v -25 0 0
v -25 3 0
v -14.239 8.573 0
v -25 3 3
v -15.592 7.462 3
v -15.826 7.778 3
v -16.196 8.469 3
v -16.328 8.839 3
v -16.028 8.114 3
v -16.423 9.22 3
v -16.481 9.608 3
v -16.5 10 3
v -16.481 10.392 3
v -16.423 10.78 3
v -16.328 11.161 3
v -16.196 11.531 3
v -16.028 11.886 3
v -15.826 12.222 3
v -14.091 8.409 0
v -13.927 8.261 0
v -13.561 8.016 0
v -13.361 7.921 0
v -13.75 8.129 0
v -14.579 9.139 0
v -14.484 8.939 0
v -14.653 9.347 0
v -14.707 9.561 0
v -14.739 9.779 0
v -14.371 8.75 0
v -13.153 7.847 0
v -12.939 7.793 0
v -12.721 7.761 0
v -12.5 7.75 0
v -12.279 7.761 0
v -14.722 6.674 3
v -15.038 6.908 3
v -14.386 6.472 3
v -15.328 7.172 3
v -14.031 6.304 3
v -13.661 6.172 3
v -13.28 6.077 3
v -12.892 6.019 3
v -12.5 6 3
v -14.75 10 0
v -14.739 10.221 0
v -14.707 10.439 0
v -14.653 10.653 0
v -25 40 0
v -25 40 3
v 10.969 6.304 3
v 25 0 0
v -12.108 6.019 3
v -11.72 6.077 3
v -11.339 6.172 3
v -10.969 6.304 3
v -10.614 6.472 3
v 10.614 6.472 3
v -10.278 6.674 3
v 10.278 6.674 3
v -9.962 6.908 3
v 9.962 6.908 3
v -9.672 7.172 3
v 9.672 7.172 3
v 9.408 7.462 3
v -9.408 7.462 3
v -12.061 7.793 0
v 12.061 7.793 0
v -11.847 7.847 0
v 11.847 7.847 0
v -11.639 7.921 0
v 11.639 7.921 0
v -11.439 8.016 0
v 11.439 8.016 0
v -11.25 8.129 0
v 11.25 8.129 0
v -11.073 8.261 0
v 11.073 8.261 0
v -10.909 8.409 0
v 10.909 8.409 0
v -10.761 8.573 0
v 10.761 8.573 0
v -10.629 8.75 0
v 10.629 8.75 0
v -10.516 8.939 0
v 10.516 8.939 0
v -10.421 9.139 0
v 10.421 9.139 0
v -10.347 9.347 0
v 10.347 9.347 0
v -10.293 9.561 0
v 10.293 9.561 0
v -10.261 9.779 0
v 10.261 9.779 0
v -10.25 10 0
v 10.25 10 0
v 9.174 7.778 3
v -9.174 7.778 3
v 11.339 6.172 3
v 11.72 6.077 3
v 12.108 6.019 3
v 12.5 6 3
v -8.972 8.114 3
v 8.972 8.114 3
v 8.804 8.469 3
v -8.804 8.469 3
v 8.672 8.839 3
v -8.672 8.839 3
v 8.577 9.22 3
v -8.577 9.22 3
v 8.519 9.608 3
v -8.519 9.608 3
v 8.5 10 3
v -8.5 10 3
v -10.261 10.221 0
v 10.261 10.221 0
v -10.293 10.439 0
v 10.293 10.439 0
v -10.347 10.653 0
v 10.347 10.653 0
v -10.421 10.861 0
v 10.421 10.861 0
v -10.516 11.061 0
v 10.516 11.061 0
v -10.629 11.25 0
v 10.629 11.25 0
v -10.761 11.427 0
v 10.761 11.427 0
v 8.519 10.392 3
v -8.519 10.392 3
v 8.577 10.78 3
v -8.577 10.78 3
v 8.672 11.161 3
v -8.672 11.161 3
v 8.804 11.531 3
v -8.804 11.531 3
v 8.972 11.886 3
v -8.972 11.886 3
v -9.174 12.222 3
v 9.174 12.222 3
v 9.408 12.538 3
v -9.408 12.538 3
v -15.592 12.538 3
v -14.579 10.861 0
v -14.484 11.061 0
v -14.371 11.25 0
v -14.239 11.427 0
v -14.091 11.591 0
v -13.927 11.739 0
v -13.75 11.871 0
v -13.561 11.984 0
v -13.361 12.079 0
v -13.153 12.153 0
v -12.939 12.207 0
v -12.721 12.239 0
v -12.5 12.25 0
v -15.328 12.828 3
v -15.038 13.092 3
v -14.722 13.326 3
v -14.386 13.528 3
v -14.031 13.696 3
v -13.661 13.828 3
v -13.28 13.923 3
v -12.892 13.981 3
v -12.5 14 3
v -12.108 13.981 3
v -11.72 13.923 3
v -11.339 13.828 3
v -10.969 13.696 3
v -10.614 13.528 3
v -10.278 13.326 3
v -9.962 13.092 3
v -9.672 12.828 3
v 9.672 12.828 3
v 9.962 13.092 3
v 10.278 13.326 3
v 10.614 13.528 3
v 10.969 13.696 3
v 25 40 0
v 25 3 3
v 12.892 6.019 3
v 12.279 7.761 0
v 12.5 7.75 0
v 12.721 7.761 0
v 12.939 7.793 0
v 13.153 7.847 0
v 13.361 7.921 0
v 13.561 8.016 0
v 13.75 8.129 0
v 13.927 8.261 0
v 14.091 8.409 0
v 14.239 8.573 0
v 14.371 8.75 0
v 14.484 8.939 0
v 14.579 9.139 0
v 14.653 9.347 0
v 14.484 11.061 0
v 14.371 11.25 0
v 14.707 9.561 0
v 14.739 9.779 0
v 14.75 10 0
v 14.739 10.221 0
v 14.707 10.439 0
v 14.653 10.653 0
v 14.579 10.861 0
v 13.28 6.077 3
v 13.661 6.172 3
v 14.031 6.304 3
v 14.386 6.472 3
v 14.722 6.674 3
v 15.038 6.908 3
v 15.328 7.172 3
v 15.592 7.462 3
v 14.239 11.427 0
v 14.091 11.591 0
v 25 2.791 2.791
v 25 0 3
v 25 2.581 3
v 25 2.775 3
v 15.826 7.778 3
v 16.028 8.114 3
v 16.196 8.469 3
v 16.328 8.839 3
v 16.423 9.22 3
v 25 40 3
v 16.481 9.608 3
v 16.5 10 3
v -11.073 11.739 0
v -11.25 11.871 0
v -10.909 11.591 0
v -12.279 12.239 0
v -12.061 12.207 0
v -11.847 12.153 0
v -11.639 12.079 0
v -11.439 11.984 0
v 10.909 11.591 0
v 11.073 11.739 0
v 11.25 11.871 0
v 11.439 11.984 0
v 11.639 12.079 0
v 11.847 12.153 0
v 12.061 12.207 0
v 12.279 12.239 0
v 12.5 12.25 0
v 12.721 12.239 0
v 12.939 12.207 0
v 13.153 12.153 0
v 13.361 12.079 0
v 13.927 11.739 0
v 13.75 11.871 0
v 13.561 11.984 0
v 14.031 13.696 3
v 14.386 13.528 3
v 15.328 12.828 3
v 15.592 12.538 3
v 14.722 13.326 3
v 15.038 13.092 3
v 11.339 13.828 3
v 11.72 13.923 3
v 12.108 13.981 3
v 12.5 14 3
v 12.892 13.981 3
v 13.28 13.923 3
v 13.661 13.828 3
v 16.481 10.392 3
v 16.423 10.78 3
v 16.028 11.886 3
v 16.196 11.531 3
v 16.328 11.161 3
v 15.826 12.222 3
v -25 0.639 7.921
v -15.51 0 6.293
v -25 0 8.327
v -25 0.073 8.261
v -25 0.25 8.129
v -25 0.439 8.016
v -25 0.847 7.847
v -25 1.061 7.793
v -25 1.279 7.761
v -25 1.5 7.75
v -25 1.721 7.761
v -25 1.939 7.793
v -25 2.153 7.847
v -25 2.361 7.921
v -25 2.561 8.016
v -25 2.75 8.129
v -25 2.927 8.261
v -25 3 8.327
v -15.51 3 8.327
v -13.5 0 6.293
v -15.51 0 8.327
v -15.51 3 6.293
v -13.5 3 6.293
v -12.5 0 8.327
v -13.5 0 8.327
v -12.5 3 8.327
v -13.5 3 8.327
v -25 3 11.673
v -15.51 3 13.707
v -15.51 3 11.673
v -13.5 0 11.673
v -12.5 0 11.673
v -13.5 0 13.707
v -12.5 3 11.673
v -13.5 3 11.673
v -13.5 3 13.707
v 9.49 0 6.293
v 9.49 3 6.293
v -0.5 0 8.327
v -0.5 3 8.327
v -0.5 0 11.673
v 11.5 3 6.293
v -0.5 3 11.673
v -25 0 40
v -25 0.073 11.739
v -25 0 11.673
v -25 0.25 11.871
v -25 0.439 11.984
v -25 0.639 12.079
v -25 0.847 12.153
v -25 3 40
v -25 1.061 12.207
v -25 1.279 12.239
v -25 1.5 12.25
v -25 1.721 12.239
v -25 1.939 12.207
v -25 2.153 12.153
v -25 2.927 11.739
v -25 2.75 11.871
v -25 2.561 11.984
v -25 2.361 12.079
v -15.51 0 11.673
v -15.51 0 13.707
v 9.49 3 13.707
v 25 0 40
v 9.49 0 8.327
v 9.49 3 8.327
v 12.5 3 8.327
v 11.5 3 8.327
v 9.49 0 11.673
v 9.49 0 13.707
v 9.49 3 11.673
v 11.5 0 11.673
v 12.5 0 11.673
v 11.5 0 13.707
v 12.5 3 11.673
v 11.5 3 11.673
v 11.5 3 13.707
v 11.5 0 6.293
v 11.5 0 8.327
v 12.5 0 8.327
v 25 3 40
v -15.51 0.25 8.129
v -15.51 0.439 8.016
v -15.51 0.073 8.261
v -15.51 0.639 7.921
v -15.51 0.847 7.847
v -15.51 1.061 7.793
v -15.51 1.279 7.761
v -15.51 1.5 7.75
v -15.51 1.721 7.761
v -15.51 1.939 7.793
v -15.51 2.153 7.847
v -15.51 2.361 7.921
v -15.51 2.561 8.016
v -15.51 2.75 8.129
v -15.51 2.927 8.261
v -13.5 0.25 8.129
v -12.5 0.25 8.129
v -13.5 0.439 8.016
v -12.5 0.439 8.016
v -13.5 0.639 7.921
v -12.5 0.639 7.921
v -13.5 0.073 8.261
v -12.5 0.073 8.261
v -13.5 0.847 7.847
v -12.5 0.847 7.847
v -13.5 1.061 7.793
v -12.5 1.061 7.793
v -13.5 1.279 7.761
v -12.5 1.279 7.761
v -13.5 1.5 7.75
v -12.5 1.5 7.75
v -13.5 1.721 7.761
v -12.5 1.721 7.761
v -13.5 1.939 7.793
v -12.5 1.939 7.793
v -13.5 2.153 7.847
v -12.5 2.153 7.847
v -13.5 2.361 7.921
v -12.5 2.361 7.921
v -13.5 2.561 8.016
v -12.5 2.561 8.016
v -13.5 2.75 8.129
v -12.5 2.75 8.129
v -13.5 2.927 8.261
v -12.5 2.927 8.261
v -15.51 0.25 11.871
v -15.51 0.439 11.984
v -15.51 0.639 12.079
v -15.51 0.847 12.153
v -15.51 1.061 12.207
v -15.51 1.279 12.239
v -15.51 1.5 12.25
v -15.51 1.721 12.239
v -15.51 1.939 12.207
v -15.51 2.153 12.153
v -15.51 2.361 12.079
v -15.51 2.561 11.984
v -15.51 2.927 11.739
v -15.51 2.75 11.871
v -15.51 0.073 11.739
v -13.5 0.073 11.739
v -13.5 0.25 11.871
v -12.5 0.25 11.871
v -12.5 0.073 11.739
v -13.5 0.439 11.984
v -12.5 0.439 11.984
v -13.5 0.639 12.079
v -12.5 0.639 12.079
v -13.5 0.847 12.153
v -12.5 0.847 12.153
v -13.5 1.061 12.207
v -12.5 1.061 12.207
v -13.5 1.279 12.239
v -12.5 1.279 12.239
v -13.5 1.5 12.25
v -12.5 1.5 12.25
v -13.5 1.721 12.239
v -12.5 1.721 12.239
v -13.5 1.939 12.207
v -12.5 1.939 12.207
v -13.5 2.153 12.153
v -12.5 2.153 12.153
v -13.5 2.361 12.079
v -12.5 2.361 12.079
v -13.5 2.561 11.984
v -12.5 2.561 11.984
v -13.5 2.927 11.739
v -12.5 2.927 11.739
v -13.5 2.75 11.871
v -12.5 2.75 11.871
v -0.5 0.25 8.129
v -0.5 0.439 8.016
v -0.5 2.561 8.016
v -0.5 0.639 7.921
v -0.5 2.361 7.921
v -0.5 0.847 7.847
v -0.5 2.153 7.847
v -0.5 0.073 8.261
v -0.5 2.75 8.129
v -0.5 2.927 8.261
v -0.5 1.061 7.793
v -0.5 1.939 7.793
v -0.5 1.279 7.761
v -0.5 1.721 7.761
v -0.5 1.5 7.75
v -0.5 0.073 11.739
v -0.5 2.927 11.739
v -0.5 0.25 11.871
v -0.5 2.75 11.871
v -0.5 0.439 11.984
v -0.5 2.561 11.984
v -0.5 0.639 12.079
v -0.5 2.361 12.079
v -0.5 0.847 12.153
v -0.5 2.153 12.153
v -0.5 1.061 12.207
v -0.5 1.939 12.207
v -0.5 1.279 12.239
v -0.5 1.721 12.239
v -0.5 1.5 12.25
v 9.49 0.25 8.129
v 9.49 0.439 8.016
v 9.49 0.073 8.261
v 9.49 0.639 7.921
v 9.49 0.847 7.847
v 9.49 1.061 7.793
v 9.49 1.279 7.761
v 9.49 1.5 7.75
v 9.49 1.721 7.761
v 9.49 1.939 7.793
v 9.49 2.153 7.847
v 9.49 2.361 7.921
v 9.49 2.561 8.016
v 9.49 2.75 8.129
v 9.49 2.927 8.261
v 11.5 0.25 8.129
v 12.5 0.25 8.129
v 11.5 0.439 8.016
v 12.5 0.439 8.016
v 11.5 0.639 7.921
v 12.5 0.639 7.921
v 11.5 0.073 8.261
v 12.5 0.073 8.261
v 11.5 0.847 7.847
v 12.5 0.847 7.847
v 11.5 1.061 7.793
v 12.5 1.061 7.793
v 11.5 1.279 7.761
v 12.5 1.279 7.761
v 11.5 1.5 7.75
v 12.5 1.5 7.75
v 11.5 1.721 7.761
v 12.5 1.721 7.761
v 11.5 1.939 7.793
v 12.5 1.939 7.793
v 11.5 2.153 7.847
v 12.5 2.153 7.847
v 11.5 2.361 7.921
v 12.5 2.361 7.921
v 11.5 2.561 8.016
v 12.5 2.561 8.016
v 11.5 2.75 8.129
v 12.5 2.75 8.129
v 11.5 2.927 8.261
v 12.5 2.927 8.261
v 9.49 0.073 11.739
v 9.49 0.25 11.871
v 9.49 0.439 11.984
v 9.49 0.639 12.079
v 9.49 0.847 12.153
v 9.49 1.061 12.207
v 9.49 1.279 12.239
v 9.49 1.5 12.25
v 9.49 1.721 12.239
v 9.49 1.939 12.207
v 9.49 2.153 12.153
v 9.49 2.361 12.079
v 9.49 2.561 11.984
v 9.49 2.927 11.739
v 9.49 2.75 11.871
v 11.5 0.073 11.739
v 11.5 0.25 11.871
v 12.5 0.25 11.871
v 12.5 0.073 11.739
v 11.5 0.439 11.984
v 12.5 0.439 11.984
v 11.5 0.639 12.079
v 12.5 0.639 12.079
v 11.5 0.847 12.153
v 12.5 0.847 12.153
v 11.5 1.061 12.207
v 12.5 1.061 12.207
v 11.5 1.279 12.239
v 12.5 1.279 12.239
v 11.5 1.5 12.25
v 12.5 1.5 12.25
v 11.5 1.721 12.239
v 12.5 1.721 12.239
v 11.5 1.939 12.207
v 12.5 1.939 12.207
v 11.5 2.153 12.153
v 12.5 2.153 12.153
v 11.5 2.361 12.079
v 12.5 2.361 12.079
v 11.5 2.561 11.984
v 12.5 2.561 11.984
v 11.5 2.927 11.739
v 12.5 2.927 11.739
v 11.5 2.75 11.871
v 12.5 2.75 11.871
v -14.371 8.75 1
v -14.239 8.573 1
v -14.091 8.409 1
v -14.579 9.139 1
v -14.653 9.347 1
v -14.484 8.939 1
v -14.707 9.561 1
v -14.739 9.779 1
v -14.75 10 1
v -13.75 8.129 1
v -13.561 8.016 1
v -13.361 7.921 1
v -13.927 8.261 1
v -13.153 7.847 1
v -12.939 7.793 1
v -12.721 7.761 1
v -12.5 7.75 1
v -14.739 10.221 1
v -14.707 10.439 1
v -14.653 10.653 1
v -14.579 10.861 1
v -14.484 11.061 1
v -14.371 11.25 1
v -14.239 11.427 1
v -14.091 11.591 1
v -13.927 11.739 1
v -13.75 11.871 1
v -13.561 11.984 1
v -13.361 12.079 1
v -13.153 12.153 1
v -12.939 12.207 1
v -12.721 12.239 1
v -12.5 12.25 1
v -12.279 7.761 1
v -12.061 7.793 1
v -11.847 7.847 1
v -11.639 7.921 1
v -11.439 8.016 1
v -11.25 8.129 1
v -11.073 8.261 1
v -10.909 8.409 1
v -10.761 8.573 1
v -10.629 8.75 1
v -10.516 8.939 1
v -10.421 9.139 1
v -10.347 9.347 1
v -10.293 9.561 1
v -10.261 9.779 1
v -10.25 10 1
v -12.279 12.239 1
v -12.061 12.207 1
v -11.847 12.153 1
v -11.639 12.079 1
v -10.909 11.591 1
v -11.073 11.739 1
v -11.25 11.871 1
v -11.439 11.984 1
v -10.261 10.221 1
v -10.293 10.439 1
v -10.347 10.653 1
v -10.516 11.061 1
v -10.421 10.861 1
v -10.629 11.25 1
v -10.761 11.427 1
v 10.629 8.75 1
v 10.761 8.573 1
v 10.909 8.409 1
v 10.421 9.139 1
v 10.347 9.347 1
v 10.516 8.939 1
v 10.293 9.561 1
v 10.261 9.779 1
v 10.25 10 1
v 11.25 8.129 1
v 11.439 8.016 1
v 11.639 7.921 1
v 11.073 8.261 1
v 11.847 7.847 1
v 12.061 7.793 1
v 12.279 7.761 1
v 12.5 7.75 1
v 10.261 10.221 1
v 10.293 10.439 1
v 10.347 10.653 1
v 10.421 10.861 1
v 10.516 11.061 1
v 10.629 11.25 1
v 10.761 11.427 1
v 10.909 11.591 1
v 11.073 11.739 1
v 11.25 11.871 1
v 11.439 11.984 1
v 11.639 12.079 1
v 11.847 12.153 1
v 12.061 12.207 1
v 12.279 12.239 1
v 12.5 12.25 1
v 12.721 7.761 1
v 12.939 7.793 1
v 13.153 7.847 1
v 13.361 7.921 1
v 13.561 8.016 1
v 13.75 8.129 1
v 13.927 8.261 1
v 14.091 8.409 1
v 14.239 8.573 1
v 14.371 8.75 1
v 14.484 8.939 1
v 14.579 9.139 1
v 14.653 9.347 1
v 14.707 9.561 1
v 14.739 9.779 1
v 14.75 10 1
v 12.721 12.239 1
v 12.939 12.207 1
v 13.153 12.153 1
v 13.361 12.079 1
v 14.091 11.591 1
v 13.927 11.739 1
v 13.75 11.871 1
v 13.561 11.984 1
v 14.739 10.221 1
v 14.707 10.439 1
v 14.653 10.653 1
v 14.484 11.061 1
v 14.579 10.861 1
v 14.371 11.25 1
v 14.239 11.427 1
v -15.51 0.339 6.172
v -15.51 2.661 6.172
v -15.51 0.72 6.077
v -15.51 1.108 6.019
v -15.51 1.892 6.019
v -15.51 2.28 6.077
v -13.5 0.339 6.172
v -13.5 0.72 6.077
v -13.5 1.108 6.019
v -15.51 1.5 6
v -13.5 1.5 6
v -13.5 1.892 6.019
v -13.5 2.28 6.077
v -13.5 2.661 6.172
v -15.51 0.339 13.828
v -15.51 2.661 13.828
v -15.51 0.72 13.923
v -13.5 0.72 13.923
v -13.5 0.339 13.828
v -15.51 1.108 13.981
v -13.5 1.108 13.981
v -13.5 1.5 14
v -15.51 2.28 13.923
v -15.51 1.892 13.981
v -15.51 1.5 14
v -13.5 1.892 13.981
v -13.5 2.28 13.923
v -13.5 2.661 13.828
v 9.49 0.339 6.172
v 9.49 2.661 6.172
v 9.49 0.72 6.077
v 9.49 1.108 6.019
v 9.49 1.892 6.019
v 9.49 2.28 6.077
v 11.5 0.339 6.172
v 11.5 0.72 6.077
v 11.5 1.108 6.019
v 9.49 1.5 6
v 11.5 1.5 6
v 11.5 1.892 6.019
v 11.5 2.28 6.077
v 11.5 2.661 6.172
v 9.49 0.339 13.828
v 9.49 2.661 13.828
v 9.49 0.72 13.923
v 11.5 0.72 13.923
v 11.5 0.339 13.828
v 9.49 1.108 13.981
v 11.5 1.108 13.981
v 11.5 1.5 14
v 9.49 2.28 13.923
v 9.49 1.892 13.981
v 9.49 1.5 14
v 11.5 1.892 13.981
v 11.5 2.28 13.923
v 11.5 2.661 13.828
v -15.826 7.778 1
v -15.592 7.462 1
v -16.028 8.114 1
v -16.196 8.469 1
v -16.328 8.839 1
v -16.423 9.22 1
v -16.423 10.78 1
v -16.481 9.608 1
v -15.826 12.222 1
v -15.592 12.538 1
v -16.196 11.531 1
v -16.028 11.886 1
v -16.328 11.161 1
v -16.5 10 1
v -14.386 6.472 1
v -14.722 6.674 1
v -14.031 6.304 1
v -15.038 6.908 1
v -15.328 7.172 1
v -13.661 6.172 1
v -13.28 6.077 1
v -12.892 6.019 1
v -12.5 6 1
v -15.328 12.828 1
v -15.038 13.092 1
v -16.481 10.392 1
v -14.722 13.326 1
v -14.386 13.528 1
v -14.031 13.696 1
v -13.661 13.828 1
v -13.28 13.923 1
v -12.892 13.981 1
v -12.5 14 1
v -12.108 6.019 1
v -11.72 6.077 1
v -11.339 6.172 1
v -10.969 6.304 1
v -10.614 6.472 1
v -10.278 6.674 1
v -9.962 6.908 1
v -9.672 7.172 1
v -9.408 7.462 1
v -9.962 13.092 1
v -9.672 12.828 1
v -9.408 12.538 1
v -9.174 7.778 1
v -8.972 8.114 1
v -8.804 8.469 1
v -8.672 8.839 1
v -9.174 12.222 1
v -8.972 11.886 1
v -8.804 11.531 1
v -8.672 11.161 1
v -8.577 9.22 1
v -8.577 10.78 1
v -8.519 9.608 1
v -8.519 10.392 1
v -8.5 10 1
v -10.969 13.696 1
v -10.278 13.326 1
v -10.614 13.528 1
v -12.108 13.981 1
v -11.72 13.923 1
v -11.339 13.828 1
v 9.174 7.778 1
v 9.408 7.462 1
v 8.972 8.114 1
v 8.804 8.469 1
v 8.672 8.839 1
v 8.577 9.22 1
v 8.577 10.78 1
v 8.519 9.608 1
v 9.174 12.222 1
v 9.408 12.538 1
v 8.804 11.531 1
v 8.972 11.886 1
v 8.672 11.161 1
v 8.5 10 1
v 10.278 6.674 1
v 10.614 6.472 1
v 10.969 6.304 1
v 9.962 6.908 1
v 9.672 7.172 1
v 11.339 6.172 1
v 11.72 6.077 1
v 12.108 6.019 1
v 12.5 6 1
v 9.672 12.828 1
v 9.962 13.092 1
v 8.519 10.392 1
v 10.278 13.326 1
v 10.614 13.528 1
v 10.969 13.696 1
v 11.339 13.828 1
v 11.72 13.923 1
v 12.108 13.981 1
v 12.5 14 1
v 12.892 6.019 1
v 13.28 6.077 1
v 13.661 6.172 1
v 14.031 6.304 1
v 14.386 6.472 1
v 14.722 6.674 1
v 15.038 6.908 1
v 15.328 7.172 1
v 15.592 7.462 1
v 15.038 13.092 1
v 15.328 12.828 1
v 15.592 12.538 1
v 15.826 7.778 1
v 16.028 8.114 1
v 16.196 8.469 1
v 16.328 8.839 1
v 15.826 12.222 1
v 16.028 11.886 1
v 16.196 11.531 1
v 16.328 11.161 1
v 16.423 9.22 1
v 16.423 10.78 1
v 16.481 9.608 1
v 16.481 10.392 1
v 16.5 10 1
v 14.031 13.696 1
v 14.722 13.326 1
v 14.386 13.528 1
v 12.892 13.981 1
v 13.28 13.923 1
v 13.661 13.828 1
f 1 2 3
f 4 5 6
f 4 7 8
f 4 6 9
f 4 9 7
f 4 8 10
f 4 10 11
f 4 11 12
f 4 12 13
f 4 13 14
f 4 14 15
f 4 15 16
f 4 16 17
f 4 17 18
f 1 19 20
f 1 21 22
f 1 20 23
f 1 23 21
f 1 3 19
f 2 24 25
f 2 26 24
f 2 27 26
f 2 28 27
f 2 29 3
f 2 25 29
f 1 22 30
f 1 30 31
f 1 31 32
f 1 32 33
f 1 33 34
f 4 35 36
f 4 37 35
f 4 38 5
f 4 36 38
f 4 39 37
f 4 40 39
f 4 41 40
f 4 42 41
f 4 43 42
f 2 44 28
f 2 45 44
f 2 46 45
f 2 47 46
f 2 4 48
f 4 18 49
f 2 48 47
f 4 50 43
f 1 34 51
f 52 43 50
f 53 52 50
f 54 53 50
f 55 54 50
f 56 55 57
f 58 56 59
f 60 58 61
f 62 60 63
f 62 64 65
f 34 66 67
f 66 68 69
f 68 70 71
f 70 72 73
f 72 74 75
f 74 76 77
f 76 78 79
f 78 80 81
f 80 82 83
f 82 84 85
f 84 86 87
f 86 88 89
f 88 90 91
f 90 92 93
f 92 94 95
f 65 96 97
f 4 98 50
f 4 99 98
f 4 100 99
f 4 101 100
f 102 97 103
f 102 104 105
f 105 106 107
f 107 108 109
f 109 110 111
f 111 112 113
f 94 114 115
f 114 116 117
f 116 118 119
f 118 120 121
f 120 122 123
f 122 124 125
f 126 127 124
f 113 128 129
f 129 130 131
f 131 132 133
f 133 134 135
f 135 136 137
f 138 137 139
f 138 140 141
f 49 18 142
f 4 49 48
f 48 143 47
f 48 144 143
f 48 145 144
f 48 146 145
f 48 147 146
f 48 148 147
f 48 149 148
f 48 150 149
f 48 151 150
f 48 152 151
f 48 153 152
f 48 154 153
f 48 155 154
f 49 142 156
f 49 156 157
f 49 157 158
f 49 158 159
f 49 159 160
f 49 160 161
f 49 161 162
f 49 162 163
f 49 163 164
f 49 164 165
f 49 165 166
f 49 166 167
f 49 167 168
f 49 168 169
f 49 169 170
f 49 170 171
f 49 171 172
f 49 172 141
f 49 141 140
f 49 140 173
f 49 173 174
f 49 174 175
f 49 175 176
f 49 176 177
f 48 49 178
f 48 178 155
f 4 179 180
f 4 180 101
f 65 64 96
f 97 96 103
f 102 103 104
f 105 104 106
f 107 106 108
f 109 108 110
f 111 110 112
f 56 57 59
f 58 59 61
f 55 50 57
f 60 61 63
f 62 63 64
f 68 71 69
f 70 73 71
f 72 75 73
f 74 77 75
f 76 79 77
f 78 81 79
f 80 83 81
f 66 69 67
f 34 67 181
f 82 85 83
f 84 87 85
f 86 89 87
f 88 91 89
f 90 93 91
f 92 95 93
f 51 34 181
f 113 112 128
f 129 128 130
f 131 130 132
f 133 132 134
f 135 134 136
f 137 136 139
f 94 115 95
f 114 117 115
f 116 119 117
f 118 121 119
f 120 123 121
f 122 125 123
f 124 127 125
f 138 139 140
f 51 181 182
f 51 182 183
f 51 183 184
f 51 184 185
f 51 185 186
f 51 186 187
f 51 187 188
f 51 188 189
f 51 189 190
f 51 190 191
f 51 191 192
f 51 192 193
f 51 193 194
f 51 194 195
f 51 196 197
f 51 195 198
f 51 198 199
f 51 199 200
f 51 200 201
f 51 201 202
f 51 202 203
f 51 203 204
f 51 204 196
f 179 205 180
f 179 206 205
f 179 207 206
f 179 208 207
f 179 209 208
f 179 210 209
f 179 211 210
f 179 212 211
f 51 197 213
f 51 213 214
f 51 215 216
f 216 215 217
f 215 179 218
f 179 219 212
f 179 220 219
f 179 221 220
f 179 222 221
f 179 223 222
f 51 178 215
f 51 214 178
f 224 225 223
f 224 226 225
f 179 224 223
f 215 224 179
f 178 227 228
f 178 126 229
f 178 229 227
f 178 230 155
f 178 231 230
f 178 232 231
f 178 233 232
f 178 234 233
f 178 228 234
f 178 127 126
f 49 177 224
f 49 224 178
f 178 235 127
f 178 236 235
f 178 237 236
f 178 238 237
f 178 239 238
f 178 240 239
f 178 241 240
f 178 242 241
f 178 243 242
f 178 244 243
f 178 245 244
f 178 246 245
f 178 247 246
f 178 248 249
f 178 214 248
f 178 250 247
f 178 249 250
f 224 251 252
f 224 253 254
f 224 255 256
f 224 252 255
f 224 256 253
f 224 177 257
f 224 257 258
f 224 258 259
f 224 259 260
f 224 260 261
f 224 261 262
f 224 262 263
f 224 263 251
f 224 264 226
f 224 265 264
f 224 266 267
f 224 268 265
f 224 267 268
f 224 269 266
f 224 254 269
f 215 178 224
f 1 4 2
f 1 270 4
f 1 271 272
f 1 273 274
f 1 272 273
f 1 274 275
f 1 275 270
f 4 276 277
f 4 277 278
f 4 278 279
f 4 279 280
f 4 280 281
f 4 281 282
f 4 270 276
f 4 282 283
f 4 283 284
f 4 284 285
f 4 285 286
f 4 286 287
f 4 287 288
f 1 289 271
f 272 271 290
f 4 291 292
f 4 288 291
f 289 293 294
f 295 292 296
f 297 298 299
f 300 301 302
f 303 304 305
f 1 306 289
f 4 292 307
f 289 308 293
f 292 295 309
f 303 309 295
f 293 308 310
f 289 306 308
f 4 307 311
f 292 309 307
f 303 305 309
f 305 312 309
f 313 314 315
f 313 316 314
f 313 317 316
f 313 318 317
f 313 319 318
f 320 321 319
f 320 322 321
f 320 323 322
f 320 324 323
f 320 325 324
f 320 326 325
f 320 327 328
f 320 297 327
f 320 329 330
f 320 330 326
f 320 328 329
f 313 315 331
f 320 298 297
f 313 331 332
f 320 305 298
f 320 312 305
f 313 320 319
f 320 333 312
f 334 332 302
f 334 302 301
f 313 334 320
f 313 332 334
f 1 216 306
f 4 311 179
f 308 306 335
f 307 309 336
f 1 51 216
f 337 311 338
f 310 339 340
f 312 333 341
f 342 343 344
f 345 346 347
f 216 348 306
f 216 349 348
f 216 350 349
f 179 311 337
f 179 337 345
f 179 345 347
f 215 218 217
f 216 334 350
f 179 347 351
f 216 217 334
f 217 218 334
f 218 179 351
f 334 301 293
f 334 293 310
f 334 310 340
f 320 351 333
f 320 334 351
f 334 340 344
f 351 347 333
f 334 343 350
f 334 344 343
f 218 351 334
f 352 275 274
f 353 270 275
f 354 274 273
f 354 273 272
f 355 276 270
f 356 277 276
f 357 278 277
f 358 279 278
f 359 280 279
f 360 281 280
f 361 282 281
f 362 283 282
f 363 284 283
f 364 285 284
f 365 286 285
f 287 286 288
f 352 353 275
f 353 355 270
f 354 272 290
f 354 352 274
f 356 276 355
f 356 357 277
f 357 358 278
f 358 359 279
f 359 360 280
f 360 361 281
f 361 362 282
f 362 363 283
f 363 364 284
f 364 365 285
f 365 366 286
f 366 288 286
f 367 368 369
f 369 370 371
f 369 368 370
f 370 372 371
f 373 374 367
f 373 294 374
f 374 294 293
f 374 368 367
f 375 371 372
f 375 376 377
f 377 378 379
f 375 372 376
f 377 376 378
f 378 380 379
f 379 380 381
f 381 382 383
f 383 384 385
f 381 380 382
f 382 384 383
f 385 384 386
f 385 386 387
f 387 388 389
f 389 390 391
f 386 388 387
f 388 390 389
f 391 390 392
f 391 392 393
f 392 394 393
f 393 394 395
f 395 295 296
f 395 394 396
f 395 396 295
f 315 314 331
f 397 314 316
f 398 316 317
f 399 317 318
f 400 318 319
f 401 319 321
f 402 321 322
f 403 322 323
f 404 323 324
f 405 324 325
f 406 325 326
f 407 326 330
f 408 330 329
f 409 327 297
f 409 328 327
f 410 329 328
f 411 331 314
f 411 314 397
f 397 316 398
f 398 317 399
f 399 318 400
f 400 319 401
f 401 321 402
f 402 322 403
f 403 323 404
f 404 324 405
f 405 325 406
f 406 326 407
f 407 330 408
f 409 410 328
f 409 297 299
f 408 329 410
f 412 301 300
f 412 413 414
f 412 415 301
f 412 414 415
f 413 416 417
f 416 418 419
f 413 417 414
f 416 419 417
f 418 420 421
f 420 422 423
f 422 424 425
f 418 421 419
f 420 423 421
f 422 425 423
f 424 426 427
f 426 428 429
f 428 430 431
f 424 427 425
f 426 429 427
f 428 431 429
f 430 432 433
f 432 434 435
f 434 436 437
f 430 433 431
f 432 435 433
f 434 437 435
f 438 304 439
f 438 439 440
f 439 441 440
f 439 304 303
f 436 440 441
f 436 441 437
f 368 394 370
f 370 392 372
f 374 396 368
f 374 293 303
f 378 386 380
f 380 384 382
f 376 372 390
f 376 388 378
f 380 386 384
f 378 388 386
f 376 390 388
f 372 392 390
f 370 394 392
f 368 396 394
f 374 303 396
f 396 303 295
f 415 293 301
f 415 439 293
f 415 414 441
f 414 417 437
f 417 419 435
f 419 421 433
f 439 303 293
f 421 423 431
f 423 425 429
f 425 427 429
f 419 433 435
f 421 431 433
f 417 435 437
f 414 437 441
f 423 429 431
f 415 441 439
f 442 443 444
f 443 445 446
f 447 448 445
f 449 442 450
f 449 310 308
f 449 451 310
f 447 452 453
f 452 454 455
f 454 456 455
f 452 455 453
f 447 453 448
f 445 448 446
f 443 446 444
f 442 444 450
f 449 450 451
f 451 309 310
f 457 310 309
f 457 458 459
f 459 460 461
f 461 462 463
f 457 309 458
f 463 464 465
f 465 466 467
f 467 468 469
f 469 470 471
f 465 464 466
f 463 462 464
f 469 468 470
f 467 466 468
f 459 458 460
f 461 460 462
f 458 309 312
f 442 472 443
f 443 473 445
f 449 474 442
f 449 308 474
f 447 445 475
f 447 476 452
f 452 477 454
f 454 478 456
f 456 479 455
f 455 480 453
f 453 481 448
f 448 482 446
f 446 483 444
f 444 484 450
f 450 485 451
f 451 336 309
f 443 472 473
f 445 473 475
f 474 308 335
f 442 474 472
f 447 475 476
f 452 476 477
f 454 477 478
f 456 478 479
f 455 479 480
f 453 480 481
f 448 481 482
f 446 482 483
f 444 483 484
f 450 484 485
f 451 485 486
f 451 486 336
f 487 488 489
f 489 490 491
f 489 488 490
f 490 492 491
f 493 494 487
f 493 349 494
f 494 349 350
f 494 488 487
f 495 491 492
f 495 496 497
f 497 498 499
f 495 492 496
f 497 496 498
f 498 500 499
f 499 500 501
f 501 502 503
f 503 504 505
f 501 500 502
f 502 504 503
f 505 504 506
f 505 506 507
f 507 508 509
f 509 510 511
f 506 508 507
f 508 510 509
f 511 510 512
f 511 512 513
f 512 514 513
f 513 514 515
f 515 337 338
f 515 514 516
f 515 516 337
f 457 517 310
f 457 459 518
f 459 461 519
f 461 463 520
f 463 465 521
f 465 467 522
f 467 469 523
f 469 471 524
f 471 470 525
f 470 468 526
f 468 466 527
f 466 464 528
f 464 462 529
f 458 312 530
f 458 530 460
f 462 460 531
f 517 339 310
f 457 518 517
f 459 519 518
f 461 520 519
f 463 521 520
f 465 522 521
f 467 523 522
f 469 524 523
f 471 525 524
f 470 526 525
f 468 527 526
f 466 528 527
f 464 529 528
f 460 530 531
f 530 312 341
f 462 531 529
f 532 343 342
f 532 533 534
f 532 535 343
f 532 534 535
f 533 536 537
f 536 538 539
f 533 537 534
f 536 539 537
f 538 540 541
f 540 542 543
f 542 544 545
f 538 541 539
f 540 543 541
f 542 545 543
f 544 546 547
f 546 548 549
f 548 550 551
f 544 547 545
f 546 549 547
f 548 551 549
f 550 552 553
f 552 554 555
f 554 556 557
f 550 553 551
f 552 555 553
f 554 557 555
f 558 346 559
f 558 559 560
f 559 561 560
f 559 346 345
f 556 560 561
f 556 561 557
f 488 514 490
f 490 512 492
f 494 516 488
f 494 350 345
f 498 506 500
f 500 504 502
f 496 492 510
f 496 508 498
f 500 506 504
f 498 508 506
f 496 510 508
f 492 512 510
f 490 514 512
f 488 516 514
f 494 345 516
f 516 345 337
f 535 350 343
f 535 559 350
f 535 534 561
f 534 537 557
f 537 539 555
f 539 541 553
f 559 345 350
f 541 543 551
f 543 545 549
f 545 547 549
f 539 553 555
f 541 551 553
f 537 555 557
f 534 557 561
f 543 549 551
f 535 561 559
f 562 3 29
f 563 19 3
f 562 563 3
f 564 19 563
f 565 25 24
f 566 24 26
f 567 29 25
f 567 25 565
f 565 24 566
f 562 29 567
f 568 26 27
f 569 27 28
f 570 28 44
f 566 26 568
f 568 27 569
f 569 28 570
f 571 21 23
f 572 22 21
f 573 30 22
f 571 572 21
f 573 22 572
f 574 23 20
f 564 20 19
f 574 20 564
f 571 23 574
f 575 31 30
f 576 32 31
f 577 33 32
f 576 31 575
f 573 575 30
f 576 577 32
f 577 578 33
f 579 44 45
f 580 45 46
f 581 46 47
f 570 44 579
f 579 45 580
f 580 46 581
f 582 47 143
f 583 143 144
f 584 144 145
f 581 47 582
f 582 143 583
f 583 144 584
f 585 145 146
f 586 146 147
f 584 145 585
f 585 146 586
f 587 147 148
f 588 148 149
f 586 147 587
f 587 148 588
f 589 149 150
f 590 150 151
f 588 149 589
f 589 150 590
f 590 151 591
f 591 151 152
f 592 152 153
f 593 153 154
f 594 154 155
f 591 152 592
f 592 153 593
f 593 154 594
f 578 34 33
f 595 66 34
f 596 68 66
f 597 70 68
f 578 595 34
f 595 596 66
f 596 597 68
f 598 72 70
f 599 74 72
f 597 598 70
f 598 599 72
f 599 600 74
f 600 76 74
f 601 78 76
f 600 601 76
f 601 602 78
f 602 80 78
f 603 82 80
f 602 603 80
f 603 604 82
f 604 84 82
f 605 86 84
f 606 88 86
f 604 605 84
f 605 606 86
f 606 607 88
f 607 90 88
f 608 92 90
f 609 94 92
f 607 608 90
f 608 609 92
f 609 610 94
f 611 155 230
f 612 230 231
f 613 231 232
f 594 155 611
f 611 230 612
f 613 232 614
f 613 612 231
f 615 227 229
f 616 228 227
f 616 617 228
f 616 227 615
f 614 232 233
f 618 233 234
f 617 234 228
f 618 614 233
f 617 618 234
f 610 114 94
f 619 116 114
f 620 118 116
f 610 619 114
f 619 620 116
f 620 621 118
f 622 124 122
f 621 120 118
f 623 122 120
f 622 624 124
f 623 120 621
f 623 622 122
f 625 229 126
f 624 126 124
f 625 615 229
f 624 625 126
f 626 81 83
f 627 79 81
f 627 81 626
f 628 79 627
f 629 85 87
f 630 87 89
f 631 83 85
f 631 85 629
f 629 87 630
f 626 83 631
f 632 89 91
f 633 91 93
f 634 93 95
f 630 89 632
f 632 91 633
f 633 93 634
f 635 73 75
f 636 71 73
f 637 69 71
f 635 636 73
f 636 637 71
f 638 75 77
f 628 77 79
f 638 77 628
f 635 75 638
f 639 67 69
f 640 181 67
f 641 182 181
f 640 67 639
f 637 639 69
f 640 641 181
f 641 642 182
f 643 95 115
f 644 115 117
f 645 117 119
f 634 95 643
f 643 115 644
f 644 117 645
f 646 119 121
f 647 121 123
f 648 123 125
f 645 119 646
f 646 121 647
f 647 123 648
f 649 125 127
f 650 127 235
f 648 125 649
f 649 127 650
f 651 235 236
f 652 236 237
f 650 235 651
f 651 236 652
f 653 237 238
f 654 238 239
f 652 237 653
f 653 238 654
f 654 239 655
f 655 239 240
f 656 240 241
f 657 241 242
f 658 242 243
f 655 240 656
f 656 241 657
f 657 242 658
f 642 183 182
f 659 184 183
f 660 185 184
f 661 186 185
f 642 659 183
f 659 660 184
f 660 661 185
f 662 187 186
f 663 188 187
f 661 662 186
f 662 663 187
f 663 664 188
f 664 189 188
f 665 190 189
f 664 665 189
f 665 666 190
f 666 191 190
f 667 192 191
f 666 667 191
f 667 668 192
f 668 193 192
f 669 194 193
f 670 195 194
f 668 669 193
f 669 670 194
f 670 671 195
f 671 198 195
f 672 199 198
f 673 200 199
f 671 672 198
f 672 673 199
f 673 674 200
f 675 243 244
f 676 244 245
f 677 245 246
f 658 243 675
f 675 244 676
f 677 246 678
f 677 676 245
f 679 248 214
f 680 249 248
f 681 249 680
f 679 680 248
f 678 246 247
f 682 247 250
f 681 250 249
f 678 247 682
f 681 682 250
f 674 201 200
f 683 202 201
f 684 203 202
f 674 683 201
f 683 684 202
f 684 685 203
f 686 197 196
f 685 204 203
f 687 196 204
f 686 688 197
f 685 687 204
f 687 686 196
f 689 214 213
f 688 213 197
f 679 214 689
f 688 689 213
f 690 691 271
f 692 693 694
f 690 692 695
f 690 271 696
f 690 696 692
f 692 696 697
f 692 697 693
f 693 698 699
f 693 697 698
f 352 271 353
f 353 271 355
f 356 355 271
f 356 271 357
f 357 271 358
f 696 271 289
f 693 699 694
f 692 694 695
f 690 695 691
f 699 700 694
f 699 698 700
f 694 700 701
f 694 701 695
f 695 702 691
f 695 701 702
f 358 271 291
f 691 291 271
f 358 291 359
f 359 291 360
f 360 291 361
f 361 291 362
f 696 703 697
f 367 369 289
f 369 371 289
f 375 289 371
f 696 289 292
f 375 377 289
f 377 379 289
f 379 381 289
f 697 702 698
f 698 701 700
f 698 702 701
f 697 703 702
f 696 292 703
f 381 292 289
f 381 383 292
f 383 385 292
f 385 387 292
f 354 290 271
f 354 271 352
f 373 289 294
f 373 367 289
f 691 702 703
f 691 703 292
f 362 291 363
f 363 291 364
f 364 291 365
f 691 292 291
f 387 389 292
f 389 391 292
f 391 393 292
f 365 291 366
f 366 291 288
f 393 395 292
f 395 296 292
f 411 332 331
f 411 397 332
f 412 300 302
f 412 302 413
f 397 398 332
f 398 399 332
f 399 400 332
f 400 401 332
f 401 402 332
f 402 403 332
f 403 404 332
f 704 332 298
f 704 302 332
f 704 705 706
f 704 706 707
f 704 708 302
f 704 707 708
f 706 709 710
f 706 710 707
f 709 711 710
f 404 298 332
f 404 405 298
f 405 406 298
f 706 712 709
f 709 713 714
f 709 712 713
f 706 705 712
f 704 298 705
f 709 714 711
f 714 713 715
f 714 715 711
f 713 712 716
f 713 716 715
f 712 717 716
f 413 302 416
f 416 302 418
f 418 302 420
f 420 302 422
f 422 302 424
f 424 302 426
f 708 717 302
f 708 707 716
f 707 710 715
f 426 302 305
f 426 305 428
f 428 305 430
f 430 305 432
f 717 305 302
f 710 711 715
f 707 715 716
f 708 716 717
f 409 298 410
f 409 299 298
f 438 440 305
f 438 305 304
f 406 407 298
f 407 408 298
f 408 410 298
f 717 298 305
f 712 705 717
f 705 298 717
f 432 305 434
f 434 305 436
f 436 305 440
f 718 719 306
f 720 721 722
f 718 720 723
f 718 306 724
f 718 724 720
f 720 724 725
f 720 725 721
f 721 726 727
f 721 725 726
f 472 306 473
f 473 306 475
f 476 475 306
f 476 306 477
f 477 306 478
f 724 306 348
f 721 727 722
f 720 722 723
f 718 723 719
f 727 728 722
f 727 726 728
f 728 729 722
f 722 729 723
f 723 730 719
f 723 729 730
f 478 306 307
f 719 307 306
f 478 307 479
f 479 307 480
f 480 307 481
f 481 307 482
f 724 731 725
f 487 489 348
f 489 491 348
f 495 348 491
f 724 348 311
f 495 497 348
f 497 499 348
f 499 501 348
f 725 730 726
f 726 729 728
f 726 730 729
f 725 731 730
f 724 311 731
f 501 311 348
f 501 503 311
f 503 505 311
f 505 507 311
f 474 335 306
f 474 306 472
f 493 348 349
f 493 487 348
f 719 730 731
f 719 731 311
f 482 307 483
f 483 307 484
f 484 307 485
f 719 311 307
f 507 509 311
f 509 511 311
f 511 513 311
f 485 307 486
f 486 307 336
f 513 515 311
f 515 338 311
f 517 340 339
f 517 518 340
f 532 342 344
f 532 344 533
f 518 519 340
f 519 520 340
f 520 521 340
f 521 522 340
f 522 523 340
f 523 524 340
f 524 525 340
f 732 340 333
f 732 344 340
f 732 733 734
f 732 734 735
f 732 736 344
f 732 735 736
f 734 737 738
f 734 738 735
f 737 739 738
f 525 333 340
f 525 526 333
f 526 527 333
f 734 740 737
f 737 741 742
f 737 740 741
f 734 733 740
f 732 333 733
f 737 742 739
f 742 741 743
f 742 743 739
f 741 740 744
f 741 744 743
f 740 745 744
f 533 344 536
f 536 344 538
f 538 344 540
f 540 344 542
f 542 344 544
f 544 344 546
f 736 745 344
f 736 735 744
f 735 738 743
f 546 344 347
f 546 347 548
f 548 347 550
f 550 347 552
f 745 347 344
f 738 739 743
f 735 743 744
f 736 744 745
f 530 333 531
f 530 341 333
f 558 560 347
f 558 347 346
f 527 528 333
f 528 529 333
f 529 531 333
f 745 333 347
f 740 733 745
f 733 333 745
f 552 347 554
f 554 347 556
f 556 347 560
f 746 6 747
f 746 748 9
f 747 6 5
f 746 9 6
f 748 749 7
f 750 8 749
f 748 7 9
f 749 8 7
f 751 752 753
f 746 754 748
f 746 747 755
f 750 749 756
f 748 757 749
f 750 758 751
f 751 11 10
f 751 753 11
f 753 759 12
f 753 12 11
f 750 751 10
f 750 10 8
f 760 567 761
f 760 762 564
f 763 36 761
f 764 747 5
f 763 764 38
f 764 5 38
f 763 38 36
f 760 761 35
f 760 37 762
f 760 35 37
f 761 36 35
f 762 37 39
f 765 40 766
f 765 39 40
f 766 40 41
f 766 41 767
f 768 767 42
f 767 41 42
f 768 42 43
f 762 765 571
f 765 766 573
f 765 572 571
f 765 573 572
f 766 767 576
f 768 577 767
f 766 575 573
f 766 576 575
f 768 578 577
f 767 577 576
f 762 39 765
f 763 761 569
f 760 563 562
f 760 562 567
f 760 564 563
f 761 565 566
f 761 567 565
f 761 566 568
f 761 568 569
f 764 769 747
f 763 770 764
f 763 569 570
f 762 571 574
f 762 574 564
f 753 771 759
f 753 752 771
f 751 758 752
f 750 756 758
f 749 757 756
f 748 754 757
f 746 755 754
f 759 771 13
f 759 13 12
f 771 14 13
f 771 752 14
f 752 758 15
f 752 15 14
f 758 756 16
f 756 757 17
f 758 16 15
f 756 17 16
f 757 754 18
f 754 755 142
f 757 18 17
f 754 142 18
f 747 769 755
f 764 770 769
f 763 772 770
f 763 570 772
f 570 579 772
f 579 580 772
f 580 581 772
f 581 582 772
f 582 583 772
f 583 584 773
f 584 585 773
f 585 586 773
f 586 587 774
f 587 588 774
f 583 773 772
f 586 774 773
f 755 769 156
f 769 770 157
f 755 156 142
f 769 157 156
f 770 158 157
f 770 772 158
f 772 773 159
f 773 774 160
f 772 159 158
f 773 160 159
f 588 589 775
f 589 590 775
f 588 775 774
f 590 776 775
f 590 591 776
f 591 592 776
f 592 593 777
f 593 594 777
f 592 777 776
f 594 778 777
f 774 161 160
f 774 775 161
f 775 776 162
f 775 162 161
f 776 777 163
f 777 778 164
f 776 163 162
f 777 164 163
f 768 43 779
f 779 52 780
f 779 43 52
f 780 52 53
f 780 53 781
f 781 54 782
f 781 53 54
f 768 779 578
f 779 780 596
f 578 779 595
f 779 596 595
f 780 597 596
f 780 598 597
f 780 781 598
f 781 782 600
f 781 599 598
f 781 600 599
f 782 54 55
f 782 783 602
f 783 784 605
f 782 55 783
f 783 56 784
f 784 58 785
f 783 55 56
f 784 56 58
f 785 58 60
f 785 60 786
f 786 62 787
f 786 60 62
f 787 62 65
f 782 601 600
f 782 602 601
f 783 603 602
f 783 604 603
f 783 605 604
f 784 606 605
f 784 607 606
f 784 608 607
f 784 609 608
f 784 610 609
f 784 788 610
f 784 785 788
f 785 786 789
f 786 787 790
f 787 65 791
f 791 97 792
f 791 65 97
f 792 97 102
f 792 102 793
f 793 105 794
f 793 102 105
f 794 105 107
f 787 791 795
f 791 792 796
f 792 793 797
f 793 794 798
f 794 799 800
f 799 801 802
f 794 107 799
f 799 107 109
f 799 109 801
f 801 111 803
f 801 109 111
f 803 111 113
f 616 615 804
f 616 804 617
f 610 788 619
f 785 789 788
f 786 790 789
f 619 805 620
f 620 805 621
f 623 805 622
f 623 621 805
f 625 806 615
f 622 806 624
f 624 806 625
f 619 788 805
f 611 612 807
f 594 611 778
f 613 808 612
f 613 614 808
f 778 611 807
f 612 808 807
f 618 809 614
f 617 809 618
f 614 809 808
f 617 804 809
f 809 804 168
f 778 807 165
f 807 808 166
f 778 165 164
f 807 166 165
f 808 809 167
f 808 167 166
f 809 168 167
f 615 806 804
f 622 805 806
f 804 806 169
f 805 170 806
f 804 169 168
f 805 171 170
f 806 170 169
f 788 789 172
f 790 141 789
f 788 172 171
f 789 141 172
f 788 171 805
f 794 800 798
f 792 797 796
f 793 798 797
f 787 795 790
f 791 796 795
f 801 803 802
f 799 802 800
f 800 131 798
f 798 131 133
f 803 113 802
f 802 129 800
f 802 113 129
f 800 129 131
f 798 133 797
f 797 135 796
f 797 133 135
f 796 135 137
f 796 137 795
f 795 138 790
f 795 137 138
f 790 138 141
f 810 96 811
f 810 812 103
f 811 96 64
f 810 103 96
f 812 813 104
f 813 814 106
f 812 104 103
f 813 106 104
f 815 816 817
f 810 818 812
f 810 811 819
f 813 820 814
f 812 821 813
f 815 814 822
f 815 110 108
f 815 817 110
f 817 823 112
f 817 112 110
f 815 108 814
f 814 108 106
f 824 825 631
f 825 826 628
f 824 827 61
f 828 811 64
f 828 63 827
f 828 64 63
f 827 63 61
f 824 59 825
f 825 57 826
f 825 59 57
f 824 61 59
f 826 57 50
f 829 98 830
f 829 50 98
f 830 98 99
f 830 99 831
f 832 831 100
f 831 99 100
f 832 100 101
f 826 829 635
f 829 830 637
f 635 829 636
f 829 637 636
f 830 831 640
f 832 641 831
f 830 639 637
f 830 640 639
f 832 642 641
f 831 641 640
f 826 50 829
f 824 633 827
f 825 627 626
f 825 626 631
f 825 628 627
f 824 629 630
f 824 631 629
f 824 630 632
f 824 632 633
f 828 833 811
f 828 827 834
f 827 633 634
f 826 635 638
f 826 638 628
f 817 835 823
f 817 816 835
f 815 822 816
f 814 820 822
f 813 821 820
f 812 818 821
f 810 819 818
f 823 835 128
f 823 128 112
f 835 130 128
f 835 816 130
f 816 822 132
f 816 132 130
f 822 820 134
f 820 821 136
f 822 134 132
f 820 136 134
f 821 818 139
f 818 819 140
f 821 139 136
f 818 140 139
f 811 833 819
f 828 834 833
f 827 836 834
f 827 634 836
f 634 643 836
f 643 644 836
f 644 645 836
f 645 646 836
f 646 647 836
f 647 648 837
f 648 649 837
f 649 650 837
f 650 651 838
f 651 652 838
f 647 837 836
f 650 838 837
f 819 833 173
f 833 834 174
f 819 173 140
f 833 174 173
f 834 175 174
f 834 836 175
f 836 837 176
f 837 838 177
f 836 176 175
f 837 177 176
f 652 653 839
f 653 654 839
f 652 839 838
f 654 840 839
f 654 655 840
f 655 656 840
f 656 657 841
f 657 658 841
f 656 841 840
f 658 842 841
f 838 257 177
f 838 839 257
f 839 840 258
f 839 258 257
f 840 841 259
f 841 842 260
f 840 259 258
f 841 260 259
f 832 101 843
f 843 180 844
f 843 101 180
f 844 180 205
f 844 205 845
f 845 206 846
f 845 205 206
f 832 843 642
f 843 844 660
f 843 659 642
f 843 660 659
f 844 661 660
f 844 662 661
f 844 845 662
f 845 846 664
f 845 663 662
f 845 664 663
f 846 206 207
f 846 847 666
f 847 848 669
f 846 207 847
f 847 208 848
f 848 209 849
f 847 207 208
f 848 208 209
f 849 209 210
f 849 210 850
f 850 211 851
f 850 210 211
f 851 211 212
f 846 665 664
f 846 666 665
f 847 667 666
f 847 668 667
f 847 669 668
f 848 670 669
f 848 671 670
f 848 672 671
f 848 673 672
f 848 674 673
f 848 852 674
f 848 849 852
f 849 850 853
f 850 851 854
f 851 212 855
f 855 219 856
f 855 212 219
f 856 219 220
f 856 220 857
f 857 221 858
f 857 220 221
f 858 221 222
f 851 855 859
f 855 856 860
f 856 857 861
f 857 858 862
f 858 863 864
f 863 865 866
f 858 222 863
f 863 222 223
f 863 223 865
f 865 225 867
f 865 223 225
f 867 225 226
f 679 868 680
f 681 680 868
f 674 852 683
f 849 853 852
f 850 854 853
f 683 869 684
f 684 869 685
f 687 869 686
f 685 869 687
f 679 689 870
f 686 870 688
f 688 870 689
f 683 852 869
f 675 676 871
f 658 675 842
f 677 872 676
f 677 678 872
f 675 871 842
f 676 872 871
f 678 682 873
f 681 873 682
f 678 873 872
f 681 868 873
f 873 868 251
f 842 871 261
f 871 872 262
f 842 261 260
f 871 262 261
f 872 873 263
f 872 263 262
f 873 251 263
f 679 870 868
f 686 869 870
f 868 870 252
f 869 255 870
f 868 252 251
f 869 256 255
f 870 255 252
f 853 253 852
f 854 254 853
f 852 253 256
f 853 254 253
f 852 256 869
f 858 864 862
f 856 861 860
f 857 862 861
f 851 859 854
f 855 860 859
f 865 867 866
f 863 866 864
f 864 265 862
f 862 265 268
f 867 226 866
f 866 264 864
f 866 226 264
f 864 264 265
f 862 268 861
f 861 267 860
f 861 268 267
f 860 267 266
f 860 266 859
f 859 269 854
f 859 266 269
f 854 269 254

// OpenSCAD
$fn = 64;

// L-bracket parameters
w = 50;   // width (X)
d = 40;   // depth for horizontal / height for vertical (Y/Z extent)
t = 3;    // plate thickness

// M4 countersunk hole parameters
through_d = 4.5;     // clearance hole diameter
seat_d = 8;          // countersink (seat) diameter
seat_depth = 2;     // countersink seat depth

// Placement: inner corner at origin
// Horizontal flange: +Y direction
// Vertical flange:   +Z direction
// Centerline: X is centered, positions are +/- along X (left/right symmetric)
// "縁から 10mm 内側" => along Y for horizontal and along Z for vertical
x_half = w/2;
y_in = 10;  // inner offset from edge for horizontal holes (along +Y)
z_in = 10;  // inner offset from edge for vertical holes (along +Z)

// Two holes per face, centerline on face, left/right symmetric
hole_x1 = -x_half/2;
hole_x2 =  x_half/2;

// Simple countersunk hole (axis along local Z of the plate):
// - through hole
// - countersunk seat on the outer side (top side for horizontal, +X side for vertical)
module m4_countersunk(orient="top") {
    // orient determines which side the countersink opens to.
    // For horizontal plate, we drill from +Z side so seat is on outer (top).
    // For vertical plate, we drill from -X side / +X side accordingly.
    if (orient == "top") {
        // seat at z = thickness
        union() {
            // Through hole
            cylinder(h=t+10, d=through_d, center=false);
            // Seat (subtracted)
            translate([0,0,t-seat_depth])
                cylinder(h=seat_depth+0.01, d=seat_d, center=false);
        }
    } else if (orient == "bottom") {
        // seat at z = 0
        union() {
            cylinder(h=t+10, d=through_d, center=false);
            translate([0,0,0])
                cylinder(h=seat_depth+0.01, d=seat_d, center=false);
        }
    } else {
        // generic (fallback): top
        union() {
            cylinder(h=t+10, d=through_d, center=false);
            translate([0,0,t-seat_depth])
                cylinder(h=seat_depth+0.01, d=seat_d, center=false);
        }
    }
}

// Build plates
difference() {
    // Solid L-bracket (union)
    union() {
        // Horizontal flange: X=[-w/2, w/2], Y=[0, d], Z=[0, t]
        translate([0, d/2, t/2])
            cube([w, d, t], center=true);

        // Vertical flange:   X=[-w/2, w/2], Y=[0, t], Z=[0, d]
        // Positioned so that inner corner is at origin (X centered, Y=0 corner).
        translate([0, t/2, d/2])
            cube([w, t, d], center=true);
    }

    // Subtract countersunk holes
    // 1) Horizontal face (+Z outer side): seat should face outer side (+Z)
    // Holes are on the centerline along the face (X), 10mm from Y edges.
    for (xpos = [hole_x1, hole_x2]) {
        // Centerline on the face: Y is "10mm inward" from the edge (Y=0 edge)
        // Keep them symmetric left/right by xpos
        translate([xpos, y_in, t/2])
            // Drill axis along Z
            rotate([0,0,0]) {
                // Subtract countersunk hole with seat toward +Z
                // Create hole geometry locally spanning beyond the solid
                // (We align so that Z=0 is top of the local subtraction in the module)
                translate([0,0,-(t/2)])
                    m4_countersunk("top");
            }
    }

    // 2) Vertical face (+Z inner side? seat toward outer bolt-head side = -X? +X?)
    // Requirement: "皿座面は外側(ボルト頭が当たる側)に向ける"
    // For vertical flange, outer side is taken as +X (the side opposite the horizontal plate interior).
    // We'll open the countersink to +X by drilling from -X toward +X.
    // Holes are on centerline of the vertical face: Z direction is "10mm inward" from edge (Z=0).
    for (xpos = [hole_x1, hole_x2]) {
        translate([xpos, t/2, z_in]) {
            // Drill axis along X, seat toward +X.
            // Create a countersunk hole with its "top" seat along +local Z; rotate to align X.
            // Local: hole axis along Z. We'll rotate so Z -> X.
            rotate([0, -90, 0])
                // seat "top" should face +X after rotation
                m4_countersunk("top");
        }
    }

    // Note: horizontal plate edge "縁から10mm内側,左右対称に2個"
    // With our positioning, Y offset is fixed (10mm from inner corner along +Y),
    // and X offset gives left/right symmetry.
    // For vertical plate, similarly we use Z offset = 10mm from inner corner along +Z.
}
